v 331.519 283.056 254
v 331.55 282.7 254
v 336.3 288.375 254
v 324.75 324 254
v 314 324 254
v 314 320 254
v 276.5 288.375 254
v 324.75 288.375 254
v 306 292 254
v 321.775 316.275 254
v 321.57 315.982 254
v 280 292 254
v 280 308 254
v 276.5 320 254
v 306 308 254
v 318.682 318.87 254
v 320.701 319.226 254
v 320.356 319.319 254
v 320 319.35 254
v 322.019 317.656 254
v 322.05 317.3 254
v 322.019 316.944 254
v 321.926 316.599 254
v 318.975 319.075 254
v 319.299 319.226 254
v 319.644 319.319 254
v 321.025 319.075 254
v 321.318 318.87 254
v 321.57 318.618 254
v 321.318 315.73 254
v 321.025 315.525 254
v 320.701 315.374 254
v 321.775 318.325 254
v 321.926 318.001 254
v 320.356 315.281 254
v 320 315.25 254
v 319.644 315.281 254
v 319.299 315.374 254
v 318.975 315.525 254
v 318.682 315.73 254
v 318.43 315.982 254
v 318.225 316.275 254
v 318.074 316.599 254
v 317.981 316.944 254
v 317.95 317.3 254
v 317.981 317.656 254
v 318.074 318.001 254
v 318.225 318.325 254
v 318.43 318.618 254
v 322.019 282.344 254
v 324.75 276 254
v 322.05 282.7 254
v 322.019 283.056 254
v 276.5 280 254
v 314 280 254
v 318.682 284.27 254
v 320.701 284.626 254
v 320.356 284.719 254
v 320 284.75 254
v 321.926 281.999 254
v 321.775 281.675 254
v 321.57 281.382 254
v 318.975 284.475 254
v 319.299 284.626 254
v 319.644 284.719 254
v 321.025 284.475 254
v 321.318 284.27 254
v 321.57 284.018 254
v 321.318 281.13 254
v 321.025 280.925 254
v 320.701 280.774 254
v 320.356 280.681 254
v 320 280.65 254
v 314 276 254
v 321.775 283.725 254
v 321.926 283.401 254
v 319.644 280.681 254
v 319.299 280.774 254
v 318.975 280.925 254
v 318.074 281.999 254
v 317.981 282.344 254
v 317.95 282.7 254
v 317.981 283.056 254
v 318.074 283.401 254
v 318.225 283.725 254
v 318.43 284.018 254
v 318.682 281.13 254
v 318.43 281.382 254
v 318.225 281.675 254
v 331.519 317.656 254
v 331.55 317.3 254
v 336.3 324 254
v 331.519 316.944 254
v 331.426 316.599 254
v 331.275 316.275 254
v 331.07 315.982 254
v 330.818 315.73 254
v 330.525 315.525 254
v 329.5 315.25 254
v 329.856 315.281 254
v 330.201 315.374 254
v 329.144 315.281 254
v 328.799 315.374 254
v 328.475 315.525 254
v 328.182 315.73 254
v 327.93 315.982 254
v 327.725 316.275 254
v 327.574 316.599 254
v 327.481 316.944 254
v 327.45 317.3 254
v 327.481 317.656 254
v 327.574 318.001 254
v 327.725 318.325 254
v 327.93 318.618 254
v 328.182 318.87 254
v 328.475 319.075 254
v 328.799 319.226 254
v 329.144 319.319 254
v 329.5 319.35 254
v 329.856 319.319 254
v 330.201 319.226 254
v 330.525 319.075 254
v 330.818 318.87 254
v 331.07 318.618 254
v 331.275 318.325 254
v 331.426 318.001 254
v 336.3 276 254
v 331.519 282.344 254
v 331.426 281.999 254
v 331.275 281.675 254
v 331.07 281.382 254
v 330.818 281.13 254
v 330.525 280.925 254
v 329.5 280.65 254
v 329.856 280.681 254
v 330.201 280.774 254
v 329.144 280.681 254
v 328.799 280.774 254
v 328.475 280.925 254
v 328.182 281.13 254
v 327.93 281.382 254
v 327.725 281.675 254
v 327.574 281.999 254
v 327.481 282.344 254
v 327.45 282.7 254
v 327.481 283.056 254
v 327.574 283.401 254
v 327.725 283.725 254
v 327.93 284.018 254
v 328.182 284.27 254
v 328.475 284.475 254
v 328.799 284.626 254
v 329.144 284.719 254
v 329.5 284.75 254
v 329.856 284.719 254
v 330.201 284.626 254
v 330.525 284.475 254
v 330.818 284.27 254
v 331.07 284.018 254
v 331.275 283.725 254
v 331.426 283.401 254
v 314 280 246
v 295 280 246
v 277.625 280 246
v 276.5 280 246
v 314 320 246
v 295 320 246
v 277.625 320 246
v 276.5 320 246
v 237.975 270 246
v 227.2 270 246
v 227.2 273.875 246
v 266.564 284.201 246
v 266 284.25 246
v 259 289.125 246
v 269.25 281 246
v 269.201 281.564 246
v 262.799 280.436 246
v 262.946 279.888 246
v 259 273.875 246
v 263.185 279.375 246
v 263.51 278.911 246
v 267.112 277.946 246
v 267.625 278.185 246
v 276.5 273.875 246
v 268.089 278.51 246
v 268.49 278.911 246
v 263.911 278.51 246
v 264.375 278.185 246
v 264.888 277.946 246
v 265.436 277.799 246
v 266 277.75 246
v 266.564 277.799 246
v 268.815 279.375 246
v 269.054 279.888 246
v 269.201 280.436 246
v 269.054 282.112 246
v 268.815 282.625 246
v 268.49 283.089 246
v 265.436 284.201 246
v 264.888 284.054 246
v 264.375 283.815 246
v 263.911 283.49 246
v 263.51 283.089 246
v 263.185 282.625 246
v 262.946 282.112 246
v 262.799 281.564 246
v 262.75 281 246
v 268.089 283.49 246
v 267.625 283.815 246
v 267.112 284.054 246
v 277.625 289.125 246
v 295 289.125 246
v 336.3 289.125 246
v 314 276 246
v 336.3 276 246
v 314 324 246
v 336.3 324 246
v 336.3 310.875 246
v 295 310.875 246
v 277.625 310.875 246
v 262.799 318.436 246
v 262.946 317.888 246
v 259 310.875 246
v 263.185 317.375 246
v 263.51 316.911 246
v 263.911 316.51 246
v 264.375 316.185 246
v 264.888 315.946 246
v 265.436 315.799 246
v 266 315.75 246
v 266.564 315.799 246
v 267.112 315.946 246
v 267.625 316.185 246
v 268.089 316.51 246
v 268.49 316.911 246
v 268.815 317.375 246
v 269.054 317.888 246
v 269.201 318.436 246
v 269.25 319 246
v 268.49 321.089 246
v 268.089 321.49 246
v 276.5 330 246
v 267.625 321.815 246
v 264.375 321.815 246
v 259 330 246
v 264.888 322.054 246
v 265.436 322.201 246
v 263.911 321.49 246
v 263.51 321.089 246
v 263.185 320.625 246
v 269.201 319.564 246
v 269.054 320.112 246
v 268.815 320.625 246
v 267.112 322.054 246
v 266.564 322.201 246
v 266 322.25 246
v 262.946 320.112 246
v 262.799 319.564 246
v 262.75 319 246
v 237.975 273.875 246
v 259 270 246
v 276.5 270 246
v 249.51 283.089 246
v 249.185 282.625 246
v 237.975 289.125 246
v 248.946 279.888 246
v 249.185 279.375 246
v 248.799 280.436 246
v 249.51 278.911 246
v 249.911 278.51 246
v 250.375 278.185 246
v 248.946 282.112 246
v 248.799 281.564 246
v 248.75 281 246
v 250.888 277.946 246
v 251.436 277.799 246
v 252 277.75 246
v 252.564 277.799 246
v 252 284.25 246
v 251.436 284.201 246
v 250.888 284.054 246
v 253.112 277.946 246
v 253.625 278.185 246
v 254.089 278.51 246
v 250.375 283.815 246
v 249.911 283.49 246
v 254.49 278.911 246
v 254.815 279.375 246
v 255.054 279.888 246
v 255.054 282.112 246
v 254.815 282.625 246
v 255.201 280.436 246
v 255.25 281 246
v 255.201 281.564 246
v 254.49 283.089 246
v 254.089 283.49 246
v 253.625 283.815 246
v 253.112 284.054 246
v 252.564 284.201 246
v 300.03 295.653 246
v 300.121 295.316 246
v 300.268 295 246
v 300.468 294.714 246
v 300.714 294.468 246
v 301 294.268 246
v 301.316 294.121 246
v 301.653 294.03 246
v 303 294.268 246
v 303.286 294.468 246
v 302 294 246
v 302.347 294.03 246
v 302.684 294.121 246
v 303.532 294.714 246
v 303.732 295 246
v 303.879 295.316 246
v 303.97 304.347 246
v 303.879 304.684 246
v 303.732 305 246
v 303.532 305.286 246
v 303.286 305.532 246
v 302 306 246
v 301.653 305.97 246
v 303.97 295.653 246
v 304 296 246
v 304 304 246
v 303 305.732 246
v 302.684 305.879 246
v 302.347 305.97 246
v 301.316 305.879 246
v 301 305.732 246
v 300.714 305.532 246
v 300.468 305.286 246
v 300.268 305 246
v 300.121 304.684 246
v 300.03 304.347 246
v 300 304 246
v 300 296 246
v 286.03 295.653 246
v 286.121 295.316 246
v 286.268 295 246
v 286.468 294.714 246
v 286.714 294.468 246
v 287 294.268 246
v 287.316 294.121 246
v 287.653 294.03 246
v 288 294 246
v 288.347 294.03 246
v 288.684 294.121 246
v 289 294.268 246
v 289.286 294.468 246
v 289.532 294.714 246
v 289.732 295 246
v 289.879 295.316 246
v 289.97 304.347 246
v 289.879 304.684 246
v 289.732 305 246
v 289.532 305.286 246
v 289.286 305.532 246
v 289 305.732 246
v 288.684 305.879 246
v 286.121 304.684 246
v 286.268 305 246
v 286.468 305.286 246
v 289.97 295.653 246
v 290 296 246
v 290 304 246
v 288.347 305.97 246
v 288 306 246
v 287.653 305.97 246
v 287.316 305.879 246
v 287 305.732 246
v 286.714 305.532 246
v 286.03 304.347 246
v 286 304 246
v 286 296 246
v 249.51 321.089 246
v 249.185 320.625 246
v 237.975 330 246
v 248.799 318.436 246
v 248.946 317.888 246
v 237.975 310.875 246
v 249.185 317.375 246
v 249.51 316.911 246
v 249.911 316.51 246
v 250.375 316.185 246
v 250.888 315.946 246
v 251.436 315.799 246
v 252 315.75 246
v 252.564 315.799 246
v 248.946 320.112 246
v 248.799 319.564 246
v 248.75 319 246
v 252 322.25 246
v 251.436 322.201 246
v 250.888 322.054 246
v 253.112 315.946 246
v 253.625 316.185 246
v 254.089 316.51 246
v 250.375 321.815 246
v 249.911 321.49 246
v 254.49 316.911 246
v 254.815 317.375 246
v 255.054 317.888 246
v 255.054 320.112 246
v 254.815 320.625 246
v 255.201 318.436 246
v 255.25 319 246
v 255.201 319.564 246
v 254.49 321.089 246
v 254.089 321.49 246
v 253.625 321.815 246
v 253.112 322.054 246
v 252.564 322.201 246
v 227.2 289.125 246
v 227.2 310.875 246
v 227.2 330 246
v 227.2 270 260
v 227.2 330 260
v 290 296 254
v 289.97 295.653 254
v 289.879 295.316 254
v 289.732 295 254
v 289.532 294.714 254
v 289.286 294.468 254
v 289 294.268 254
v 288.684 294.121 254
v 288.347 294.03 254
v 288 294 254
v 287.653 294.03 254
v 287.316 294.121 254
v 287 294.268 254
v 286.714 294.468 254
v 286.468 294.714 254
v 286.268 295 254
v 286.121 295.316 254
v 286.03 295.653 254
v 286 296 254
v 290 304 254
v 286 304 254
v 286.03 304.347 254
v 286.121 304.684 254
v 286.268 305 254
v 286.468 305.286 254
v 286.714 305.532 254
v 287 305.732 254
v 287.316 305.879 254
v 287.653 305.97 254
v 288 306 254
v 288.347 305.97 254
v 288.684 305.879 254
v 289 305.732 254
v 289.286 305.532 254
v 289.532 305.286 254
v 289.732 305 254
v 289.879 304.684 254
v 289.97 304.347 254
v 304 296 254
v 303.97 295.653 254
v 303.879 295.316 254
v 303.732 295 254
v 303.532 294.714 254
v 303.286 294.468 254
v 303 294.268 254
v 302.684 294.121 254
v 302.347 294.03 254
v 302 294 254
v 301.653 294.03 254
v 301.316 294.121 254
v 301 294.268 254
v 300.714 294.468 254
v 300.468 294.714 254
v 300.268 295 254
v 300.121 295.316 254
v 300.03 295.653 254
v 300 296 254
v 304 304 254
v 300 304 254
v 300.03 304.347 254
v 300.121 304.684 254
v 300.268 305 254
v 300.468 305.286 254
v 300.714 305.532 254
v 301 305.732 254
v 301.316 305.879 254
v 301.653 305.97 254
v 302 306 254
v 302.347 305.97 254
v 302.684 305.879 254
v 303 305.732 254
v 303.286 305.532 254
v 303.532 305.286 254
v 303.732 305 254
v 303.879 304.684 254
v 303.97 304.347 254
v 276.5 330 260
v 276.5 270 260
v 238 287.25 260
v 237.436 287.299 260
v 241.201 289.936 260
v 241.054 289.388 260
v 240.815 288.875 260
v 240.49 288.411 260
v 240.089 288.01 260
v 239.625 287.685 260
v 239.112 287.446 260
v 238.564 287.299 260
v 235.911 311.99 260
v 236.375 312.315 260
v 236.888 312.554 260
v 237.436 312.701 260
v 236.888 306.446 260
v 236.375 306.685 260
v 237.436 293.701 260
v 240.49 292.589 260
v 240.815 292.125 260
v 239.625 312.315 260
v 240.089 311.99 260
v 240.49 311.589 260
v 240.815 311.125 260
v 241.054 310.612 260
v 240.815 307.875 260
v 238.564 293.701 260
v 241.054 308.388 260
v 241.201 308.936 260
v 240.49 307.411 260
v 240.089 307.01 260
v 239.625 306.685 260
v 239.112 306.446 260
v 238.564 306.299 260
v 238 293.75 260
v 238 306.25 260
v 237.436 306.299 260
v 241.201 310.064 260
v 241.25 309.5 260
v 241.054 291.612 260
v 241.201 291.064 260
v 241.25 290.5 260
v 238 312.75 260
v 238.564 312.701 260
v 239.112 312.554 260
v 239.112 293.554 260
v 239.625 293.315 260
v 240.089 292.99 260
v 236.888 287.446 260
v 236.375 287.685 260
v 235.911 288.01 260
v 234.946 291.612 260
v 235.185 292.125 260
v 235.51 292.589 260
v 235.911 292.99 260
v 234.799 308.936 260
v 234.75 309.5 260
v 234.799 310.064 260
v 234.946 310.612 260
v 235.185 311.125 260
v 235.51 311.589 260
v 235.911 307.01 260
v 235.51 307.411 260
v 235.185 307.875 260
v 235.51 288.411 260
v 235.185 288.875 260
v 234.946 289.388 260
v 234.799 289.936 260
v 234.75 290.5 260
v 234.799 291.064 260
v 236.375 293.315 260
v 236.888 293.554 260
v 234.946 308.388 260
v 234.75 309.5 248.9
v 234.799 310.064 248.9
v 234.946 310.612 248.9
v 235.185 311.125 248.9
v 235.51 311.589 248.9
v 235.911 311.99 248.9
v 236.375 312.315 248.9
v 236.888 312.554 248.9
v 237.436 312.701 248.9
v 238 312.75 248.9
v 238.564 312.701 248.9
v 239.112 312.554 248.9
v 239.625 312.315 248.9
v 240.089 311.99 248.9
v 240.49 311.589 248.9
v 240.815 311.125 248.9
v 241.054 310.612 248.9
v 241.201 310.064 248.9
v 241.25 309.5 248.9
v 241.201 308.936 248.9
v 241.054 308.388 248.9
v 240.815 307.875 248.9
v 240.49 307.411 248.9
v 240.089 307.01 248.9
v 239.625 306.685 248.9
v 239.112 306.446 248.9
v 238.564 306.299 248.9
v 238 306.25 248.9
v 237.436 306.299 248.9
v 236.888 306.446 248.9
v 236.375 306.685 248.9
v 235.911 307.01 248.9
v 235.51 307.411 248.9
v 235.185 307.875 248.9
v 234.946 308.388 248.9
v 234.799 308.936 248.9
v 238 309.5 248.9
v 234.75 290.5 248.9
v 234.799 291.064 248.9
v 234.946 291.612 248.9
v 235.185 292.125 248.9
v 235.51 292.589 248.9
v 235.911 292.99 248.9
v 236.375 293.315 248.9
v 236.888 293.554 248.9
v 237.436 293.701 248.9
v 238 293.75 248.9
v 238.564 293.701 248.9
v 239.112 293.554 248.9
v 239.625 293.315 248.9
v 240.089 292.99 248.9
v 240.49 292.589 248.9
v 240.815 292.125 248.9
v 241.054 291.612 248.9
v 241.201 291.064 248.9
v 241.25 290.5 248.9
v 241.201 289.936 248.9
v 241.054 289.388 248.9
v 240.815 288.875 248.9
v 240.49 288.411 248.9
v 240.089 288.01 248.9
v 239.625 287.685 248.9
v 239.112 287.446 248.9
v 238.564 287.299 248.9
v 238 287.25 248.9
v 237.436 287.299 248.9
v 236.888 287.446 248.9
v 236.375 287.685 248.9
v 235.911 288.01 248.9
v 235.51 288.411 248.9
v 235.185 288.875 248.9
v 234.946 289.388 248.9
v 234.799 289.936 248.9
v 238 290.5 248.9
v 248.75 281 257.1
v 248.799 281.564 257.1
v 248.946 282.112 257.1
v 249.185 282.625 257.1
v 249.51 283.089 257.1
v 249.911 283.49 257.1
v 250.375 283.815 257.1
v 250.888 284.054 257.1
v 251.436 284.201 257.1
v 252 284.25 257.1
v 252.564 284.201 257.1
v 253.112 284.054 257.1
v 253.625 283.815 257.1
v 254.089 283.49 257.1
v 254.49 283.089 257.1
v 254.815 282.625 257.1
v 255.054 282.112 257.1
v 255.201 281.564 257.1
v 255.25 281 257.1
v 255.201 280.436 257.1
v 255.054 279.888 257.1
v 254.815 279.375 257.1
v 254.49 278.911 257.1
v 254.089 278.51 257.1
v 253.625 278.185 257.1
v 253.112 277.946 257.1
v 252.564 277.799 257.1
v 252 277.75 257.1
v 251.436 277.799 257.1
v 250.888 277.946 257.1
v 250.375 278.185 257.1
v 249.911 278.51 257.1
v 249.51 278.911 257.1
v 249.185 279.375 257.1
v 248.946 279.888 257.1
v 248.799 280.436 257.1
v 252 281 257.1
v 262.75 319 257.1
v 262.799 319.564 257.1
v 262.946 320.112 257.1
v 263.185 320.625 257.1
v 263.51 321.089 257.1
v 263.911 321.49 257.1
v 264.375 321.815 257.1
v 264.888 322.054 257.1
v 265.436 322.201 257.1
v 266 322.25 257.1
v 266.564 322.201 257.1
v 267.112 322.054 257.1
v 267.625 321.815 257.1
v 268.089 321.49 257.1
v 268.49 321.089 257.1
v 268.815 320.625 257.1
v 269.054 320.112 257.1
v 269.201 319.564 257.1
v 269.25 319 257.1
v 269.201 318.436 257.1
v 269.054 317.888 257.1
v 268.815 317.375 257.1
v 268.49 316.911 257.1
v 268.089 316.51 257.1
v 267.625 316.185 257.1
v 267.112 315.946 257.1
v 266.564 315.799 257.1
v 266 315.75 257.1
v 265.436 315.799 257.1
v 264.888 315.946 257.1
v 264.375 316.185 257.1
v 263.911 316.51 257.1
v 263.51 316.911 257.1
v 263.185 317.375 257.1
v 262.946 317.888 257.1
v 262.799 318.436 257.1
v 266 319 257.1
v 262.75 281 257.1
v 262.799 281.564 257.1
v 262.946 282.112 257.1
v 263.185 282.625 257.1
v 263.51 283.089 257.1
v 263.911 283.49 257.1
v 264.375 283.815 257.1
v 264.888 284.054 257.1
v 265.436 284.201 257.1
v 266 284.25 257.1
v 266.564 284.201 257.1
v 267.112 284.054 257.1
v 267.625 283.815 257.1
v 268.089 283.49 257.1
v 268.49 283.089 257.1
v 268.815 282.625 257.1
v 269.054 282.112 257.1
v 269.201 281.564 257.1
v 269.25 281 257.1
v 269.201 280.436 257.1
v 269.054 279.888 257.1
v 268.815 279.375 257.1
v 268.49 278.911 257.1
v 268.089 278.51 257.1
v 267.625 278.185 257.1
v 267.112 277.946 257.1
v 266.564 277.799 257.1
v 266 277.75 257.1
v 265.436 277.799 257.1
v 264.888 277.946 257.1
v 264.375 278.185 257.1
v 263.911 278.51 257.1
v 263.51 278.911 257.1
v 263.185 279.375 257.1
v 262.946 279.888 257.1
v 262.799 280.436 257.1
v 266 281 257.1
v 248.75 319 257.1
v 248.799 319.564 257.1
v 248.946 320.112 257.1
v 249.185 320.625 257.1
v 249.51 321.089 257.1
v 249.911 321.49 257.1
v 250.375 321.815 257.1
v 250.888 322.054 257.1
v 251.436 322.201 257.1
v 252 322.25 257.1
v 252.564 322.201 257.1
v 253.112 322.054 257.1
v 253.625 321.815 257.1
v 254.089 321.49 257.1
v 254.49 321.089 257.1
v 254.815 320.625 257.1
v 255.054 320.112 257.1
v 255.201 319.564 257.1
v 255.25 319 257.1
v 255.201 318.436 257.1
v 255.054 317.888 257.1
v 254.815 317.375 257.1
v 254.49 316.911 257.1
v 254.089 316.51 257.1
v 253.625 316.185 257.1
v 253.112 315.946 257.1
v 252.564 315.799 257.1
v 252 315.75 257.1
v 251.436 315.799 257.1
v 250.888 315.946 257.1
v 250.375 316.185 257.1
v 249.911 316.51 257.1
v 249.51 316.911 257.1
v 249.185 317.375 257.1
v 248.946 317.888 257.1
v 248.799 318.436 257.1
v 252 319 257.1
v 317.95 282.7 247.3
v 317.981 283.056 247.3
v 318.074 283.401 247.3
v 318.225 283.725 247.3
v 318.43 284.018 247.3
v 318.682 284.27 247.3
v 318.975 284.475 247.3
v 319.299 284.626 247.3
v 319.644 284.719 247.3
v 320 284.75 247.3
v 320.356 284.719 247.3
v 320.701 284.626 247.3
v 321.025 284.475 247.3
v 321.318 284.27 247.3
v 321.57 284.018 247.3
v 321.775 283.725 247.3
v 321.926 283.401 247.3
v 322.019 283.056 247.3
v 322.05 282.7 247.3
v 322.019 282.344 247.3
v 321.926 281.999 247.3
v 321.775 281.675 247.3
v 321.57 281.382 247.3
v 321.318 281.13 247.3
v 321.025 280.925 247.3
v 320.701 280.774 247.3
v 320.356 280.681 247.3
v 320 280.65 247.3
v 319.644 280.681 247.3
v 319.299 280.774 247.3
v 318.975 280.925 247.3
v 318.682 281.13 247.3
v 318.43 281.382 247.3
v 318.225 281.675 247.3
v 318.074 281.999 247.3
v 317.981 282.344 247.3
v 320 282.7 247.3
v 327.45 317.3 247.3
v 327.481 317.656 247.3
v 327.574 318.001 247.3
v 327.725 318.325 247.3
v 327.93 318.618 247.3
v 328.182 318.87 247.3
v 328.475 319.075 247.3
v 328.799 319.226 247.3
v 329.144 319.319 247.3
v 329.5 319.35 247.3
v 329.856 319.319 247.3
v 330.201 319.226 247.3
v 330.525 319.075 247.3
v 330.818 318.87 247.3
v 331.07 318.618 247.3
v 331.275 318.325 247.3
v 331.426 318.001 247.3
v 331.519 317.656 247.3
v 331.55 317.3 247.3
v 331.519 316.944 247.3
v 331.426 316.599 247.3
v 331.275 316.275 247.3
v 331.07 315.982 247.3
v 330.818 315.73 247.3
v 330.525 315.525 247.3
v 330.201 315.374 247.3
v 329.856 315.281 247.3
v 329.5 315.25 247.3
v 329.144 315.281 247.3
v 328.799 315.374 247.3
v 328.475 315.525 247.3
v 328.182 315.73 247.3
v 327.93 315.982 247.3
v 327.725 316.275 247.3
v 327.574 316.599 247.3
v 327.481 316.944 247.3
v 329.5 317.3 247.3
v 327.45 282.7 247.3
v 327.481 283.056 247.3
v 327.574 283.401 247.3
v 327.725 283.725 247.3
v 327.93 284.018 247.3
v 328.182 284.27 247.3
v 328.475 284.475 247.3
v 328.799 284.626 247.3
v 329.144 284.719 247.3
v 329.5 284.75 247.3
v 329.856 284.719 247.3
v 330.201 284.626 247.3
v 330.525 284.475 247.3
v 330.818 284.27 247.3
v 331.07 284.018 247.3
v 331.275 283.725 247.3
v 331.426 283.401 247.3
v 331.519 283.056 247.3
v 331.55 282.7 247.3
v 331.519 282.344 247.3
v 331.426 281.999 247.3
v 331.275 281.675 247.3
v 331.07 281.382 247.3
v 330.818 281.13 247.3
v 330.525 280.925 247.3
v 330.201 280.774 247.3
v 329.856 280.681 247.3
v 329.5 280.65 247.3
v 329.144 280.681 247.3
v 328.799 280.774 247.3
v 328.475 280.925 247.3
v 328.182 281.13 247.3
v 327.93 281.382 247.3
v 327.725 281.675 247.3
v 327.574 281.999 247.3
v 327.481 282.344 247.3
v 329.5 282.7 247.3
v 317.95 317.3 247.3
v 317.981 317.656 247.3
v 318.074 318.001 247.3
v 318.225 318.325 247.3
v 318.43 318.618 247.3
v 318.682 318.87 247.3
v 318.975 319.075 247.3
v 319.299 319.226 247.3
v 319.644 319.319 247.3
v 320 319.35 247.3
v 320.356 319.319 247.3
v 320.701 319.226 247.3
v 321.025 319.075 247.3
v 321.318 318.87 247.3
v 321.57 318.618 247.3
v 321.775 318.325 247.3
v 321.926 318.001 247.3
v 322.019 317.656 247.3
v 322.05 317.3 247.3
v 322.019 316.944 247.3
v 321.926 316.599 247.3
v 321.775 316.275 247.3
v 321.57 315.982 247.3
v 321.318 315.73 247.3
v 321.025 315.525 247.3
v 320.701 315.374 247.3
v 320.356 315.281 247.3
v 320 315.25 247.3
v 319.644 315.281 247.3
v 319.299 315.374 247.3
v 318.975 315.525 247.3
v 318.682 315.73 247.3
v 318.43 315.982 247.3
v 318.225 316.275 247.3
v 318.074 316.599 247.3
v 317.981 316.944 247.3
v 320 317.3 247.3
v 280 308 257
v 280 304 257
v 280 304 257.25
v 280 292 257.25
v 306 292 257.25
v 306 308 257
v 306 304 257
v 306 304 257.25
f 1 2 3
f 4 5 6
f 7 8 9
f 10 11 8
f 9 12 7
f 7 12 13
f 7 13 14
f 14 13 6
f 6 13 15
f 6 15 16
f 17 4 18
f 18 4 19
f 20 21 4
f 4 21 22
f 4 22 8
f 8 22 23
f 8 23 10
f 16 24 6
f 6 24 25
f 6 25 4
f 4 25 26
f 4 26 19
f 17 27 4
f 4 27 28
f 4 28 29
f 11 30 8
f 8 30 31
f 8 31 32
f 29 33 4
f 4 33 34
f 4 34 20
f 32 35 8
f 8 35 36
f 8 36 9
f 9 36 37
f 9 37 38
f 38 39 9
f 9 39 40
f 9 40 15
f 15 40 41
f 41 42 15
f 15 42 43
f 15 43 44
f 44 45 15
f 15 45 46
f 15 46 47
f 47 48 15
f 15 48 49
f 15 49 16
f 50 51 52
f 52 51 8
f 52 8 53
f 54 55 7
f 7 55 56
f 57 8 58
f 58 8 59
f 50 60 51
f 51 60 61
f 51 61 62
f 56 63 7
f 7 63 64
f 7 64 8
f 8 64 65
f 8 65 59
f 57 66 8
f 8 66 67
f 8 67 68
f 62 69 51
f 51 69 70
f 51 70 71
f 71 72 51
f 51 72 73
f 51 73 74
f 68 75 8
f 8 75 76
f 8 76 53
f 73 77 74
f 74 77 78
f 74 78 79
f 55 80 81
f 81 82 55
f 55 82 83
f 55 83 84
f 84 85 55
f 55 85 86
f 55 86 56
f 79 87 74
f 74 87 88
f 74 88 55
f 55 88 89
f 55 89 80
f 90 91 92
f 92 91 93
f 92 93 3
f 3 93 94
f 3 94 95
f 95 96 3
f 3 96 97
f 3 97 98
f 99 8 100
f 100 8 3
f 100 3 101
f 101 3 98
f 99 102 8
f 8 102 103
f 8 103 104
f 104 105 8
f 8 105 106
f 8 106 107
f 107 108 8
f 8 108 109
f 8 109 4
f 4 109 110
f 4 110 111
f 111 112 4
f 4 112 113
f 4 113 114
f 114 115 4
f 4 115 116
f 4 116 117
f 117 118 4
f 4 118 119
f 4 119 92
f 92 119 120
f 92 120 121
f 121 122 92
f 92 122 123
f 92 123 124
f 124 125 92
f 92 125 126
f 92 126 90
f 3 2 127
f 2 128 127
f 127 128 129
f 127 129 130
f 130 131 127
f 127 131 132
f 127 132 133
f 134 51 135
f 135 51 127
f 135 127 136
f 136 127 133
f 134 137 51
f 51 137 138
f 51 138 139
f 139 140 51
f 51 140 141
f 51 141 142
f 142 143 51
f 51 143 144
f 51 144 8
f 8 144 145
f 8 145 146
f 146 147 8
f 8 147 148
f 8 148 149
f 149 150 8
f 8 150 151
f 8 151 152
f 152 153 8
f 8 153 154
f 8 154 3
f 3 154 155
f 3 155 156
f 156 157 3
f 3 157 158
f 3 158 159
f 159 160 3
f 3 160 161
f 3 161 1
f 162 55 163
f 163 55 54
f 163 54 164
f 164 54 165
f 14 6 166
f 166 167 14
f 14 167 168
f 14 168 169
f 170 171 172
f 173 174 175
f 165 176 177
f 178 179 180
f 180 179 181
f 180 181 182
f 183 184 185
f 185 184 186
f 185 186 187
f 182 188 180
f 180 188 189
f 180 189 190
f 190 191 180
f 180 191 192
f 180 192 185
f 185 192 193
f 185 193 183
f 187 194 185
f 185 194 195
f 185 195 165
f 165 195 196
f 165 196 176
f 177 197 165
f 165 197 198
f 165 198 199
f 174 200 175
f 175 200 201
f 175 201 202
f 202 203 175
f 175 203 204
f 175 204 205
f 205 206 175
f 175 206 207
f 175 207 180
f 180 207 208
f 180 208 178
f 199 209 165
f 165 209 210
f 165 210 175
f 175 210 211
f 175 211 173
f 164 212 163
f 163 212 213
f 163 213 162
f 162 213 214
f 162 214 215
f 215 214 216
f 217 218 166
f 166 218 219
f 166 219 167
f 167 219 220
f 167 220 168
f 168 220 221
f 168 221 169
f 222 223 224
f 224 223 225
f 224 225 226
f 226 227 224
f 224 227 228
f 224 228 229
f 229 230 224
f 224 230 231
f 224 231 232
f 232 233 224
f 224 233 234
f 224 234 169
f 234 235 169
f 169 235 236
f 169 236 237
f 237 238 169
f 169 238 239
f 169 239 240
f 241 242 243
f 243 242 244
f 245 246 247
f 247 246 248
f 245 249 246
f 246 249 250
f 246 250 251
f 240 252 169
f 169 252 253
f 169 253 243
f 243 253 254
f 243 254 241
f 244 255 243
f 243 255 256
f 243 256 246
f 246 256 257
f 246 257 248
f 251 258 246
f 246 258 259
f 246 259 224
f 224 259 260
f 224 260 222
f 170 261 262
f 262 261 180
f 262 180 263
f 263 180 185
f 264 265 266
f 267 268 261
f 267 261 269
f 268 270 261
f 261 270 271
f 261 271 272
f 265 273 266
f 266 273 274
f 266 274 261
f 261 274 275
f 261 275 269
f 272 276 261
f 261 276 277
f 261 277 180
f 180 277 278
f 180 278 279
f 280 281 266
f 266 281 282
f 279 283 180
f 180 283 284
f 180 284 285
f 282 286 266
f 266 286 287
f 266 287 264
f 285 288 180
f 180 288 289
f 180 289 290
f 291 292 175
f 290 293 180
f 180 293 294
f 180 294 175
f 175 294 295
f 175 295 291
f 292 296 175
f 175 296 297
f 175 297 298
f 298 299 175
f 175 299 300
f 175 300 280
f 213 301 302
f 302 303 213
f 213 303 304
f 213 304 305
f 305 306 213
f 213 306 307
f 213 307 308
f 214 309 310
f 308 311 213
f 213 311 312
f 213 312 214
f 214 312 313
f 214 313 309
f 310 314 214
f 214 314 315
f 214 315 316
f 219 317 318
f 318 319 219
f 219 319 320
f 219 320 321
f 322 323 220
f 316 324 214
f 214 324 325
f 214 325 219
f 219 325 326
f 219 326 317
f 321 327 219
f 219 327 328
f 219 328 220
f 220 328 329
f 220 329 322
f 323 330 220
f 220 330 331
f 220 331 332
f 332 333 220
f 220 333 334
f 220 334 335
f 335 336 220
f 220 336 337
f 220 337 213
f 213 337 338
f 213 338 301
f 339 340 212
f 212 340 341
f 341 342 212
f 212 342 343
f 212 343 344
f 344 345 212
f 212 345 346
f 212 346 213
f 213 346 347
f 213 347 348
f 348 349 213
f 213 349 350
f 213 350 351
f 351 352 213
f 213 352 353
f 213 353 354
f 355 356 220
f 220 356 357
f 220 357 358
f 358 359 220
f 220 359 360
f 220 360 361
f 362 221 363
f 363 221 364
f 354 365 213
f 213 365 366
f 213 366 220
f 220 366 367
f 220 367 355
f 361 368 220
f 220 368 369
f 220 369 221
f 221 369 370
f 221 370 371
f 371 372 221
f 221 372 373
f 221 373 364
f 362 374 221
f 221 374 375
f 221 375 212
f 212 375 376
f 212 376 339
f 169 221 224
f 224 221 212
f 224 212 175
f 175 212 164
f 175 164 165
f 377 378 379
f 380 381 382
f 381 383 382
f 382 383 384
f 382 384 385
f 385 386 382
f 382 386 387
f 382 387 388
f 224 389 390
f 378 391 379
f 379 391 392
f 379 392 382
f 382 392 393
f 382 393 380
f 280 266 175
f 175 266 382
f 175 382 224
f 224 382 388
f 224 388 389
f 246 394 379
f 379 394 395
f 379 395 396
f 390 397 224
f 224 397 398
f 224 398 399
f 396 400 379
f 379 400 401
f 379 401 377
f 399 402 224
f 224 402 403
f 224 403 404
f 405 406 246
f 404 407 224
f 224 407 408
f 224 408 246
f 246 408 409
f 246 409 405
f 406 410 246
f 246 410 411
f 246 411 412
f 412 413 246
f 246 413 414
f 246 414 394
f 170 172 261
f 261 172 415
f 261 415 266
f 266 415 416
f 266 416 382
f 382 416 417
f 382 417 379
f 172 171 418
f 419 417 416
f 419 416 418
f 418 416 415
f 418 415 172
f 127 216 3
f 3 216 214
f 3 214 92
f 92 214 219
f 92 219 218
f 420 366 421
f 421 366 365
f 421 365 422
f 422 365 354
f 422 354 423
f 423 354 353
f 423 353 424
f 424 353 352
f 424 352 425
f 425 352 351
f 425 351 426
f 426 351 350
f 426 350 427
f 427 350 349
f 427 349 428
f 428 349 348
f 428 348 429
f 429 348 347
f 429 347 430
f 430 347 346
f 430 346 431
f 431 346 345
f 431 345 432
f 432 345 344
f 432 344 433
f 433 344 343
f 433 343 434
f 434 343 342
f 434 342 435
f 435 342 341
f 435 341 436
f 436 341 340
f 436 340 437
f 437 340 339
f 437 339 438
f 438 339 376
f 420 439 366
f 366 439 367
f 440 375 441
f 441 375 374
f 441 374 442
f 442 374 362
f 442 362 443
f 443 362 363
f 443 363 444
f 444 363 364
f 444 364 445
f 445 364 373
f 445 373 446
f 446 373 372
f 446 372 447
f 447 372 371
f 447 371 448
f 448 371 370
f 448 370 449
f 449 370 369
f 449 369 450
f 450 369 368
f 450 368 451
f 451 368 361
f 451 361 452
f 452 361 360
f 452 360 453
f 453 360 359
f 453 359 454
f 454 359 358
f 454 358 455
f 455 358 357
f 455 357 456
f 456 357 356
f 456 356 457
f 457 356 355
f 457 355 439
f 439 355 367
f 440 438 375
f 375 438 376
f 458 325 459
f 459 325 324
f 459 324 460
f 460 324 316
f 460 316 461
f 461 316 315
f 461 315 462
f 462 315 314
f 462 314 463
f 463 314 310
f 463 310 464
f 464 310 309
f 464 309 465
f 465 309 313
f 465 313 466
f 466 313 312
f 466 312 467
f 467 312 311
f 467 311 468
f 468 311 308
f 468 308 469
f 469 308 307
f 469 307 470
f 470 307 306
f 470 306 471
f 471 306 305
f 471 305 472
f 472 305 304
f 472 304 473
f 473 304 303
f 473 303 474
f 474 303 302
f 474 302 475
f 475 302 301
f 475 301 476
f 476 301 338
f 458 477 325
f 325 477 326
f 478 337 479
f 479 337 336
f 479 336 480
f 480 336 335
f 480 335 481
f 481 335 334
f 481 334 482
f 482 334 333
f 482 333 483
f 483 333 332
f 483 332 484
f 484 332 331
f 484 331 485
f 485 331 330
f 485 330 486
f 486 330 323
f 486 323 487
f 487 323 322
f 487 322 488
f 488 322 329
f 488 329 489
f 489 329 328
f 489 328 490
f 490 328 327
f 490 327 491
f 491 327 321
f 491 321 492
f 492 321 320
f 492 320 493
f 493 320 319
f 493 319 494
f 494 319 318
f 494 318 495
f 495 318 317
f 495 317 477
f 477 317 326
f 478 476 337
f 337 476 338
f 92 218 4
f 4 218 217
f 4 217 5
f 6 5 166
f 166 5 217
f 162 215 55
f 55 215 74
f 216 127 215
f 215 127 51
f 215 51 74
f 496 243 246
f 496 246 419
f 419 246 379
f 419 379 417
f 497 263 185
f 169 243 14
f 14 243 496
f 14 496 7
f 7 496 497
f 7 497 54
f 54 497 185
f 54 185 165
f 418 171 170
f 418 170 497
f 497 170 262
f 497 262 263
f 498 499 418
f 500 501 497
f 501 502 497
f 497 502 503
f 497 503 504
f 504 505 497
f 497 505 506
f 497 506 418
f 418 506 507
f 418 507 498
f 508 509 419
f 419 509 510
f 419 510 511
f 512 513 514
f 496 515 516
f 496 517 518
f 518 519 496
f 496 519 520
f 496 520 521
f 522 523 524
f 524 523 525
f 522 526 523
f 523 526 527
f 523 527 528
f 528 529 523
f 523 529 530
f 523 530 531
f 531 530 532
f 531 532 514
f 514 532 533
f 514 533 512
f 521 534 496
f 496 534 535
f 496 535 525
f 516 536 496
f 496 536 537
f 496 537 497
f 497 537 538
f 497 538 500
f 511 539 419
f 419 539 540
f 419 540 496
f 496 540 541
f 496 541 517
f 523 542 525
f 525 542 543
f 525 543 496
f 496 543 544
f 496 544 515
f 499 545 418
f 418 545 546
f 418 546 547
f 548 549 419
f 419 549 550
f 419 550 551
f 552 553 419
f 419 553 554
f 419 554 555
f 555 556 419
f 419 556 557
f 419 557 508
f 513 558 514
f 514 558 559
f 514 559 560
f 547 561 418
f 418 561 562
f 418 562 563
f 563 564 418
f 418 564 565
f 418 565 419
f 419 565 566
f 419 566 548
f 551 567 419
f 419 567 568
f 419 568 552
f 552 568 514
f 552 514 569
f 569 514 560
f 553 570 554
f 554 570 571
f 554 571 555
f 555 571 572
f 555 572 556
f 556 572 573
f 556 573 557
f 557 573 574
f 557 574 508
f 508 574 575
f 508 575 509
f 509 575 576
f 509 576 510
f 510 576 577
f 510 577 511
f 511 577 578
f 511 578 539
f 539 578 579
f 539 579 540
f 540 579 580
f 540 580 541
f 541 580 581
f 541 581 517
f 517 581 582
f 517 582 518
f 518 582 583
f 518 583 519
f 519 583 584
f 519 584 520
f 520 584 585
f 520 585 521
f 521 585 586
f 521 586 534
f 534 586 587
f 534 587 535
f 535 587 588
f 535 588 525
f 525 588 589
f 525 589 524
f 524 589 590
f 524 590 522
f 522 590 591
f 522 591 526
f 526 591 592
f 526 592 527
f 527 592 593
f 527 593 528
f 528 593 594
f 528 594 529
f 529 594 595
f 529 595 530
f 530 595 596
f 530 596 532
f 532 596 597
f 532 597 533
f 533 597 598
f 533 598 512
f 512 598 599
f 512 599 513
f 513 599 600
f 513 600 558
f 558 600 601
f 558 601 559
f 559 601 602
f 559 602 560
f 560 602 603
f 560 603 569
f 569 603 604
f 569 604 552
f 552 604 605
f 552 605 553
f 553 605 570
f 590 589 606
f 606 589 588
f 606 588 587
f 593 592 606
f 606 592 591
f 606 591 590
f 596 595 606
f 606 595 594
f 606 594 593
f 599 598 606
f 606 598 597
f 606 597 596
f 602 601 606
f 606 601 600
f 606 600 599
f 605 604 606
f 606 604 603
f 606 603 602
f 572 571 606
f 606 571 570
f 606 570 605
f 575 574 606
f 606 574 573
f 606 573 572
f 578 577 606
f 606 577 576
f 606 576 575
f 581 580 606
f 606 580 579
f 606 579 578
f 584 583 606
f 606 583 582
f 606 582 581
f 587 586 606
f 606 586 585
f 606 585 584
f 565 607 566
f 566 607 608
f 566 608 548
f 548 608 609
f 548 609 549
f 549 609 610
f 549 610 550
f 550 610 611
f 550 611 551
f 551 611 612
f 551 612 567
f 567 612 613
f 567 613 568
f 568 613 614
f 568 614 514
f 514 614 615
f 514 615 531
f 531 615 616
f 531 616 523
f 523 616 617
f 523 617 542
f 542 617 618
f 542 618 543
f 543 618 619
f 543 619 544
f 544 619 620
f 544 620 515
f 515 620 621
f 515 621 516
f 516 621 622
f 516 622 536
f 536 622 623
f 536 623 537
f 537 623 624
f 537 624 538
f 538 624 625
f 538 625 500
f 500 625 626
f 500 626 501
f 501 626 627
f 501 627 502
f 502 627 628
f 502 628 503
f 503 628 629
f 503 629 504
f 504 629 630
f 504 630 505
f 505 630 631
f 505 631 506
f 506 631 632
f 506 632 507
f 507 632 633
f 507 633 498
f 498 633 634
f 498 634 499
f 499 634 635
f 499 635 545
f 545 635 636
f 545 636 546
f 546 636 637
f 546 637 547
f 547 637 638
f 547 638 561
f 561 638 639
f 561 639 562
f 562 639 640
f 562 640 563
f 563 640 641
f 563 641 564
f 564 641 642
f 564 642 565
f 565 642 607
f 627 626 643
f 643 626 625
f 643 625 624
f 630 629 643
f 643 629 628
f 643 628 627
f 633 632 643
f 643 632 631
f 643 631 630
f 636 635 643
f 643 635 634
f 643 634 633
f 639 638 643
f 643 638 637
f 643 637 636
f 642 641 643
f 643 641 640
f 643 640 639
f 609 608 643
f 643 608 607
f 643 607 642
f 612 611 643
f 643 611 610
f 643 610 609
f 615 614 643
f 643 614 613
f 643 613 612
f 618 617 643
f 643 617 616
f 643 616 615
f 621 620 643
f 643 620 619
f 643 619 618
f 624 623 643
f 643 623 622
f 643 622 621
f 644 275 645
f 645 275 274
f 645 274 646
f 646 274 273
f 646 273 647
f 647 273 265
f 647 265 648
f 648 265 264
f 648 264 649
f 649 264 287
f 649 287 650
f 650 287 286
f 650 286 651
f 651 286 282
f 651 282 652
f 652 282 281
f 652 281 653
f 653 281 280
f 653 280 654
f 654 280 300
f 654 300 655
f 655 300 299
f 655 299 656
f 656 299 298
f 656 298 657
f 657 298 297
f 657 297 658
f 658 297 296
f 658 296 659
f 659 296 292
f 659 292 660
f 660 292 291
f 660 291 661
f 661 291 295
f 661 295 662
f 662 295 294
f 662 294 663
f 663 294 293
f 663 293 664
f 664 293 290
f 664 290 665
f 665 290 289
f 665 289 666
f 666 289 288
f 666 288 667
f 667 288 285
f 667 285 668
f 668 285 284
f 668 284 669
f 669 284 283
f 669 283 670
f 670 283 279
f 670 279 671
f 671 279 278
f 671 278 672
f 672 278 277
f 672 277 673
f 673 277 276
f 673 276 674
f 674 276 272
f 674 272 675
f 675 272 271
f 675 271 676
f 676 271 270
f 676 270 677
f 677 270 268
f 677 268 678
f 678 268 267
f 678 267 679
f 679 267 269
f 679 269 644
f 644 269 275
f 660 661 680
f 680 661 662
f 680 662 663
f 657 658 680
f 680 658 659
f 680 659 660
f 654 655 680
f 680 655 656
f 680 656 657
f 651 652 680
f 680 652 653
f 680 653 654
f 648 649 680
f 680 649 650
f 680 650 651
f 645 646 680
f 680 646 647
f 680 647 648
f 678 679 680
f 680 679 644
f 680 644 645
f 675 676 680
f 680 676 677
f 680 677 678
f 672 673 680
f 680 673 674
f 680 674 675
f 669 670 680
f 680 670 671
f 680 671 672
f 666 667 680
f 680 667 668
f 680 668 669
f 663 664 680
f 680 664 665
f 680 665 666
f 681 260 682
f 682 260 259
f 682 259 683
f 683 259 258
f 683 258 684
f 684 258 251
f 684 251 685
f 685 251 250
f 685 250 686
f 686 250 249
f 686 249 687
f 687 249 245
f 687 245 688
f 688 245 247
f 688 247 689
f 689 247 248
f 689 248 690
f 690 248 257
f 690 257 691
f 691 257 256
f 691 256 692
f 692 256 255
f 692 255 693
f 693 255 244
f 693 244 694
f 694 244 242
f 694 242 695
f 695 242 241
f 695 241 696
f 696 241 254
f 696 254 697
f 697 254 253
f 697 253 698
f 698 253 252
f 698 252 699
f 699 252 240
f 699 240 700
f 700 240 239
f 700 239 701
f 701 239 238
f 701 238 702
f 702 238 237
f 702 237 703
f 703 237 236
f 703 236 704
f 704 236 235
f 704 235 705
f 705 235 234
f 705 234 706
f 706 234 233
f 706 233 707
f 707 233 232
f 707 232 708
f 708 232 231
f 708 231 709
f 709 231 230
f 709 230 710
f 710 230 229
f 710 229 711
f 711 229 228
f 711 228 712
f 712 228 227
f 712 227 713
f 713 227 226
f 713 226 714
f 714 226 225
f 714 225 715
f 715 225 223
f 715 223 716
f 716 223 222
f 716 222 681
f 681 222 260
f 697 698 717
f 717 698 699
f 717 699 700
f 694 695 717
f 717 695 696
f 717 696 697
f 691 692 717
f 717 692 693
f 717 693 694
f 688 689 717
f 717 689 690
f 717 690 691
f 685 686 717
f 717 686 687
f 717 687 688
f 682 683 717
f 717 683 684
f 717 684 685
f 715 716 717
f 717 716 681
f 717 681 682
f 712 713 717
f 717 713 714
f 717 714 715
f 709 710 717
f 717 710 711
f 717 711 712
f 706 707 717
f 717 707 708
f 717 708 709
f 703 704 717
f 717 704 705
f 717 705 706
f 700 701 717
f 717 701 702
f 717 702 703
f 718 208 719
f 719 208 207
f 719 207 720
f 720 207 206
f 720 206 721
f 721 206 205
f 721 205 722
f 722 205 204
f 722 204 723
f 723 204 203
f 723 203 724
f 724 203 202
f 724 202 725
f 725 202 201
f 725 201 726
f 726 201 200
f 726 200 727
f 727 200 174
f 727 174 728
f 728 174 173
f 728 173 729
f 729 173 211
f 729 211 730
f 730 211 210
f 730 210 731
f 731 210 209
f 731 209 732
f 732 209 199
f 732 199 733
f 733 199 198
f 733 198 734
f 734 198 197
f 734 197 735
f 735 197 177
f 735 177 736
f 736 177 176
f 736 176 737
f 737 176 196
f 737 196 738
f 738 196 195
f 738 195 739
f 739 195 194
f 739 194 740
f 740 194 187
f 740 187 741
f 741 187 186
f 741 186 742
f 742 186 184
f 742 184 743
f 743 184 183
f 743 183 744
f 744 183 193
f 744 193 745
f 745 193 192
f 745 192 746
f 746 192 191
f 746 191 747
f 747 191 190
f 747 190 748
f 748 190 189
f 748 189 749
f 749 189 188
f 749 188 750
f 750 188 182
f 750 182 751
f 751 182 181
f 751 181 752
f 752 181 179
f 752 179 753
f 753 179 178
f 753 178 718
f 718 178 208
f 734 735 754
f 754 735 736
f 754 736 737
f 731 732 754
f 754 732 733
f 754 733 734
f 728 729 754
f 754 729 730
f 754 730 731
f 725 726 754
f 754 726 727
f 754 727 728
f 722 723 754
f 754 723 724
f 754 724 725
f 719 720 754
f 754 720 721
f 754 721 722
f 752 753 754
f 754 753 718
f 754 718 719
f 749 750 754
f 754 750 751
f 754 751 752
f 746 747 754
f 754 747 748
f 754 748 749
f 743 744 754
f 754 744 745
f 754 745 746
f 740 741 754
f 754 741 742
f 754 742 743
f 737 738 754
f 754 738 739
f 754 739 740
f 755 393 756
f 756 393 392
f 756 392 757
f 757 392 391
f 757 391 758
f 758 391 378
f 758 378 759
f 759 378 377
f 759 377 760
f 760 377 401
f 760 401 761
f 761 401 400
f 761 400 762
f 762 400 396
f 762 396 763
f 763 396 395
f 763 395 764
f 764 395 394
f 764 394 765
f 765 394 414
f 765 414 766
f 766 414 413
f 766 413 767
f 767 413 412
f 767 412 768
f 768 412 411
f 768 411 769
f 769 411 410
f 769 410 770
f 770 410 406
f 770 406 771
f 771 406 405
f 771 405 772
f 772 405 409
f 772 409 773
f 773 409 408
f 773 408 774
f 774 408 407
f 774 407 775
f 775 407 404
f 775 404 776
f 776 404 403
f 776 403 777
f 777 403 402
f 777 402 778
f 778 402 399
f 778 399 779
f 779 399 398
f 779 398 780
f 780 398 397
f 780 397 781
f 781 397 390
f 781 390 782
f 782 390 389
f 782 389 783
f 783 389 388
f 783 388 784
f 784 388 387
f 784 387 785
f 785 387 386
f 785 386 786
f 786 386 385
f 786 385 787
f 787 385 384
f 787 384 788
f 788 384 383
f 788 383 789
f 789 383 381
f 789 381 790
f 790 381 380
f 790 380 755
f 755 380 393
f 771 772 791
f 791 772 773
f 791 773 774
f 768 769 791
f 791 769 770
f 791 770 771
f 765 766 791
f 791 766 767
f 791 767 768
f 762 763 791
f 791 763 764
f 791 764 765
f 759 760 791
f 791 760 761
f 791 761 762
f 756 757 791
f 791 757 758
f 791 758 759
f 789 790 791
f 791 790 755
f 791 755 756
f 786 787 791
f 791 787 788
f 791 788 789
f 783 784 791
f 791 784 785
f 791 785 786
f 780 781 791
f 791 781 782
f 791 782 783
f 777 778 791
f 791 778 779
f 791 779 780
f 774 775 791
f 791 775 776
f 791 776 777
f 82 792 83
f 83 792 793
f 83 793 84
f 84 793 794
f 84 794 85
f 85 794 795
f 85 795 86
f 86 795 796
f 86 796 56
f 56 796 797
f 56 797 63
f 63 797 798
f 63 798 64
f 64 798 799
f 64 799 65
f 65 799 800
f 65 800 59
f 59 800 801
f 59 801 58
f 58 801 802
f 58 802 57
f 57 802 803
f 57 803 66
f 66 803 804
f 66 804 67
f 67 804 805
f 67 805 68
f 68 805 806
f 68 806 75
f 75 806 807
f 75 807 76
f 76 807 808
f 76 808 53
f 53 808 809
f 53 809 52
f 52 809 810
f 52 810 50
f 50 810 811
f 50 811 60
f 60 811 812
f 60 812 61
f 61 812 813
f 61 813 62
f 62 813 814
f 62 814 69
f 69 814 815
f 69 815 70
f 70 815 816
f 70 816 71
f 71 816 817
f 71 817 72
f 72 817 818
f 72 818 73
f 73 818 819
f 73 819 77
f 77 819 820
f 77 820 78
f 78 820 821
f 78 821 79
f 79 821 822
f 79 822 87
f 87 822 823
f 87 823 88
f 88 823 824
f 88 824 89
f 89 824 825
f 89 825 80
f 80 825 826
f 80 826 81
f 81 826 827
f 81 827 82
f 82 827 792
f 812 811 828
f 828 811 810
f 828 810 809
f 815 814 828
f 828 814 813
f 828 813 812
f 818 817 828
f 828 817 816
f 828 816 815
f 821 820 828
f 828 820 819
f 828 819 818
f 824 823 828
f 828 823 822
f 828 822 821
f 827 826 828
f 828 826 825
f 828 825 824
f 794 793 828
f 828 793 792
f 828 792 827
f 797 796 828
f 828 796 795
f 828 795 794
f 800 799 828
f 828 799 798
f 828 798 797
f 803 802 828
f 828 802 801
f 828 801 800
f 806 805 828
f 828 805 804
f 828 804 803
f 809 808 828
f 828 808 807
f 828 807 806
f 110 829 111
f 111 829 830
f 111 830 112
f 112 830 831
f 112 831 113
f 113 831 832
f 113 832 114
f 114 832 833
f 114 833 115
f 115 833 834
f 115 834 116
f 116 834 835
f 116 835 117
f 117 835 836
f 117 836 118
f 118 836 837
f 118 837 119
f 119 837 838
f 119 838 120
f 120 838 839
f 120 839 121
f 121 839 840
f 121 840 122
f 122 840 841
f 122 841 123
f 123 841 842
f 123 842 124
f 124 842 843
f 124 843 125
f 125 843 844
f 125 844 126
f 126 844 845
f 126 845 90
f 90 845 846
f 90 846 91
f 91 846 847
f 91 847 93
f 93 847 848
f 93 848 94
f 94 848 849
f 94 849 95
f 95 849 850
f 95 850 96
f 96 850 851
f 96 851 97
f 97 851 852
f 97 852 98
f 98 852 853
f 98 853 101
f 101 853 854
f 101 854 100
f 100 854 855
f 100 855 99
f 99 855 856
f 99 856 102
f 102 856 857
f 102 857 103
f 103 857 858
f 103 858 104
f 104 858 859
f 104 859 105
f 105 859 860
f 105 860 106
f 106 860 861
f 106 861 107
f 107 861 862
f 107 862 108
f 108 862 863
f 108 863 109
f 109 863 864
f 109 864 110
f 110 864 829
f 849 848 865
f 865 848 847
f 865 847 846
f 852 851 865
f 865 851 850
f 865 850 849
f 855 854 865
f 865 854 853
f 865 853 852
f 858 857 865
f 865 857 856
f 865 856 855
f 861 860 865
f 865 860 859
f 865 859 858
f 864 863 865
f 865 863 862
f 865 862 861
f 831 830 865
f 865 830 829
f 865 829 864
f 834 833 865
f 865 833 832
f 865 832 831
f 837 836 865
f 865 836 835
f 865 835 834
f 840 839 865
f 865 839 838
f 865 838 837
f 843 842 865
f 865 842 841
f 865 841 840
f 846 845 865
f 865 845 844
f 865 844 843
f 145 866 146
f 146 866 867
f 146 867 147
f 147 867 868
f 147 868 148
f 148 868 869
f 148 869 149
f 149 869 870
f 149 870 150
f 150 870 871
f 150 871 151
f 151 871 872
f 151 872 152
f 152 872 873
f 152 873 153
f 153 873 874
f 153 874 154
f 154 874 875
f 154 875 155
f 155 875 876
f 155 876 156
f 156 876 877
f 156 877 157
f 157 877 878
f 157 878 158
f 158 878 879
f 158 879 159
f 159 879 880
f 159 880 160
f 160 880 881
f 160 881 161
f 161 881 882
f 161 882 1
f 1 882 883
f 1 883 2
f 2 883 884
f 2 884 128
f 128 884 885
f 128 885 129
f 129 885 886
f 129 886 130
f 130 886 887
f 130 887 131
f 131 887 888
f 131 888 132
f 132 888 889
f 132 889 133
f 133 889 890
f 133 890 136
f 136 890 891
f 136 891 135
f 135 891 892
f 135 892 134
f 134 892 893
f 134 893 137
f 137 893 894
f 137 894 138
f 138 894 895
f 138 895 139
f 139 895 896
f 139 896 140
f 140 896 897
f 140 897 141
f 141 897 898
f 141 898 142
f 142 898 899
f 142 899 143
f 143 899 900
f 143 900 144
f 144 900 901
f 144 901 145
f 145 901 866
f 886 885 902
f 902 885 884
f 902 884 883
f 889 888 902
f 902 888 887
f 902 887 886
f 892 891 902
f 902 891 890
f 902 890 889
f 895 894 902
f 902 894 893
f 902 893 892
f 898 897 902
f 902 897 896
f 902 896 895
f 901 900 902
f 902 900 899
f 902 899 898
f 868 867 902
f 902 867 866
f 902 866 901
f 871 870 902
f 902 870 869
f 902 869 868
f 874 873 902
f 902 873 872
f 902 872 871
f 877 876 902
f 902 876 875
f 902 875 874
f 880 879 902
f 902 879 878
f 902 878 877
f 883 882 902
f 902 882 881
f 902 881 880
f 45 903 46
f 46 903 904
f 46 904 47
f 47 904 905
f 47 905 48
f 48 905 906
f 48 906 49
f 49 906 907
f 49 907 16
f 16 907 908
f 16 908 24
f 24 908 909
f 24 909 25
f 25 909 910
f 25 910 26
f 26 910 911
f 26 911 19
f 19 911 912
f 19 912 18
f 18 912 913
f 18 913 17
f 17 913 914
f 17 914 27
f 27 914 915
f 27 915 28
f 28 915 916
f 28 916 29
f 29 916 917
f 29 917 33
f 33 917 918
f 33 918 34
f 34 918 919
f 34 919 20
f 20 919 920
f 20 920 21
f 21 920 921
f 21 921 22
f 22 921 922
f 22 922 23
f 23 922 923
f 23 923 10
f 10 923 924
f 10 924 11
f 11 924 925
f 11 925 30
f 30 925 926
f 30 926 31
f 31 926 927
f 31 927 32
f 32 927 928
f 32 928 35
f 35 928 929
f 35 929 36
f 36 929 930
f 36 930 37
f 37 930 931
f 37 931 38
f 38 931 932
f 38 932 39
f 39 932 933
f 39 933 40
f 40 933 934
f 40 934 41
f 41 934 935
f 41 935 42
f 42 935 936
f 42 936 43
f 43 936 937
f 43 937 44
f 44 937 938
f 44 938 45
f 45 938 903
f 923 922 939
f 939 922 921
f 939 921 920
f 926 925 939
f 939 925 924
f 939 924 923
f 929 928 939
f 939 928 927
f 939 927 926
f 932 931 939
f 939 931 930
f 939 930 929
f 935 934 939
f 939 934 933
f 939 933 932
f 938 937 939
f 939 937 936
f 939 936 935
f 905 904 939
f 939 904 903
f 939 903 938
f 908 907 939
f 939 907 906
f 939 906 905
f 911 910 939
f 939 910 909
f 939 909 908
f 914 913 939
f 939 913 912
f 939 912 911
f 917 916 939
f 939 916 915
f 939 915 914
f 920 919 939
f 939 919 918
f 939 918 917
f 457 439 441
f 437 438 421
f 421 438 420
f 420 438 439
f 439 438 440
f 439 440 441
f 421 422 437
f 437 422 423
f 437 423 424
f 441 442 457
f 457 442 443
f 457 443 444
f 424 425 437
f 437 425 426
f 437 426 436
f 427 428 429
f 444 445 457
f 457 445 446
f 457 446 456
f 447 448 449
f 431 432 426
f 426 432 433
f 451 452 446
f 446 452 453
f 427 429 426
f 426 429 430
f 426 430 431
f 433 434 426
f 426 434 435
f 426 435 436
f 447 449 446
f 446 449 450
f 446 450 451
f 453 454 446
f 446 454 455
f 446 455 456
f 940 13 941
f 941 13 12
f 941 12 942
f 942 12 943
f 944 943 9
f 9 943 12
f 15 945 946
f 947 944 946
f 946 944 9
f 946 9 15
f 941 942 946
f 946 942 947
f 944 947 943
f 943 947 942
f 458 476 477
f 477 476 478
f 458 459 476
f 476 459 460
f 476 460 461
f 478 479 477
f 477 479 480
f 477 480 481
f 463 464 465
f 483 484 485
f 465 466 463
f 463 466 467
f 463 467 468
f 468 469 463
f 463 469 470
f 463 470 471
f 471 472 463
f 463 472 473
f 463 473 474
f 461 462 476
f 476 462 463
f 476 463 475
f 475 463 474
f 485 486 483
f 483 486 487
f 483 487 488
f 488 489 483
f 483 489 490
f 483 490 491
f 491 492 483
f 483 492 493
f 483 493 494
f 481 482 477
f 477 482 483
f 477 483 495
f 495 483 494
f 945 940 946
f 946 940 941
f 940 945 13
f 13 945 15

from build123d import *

# Parameters (mm, degrees)
SKETCH1_W           = 109.1
SKETCH1_H           = 40
BOSS_EXTRUDE1_DEPTH = 8
SKETCH2_W           = 22.3
SKETCH2_H           = 48
BOSS_EXTRUDE2_DEPTH = 8
SKETCH3_W           = 49.3
SKETCH3_H           = 60
BOSS_EXTRUDE3_DEPTH = 8
SKETCH4_W           = 49.3
SKETCH4_H           = 60
BOSS_EXTRUDE4_DEPTH = 6
SKETCH5_R           = 3.25
CUT_EXTRUDE1_DEPTH  = 11.1
SKETCH6_R           = 3.25
CUT_EXTRUDE2_DEPTH  = 11.1
SKETCH7_R           = 2.05
CUT_EXTRUDE3_DEPTH  = 6.7
SKETCH8_W           = 26
SKETCH8_H           = 12
BOSS_EXTRUDE5_DEPTH = 3.25
SKETCH9_W           = 26
SKETCH9_H           = 12
BOSS_EXTRUDE6_DEPTH = 3


with BuildPart() as part:
    # Sketch1 → Boss-Extrude1 (new body)
    with BuildSketch(Plane.XY.offset(246)):
        with Locations((281.75, 300)):
            Rectangle(SKETCH1_W, SKETCH1_H)
        with BuildLine():
            Line((290, 296), (290, 304))
            ThreePointArc((290, 304), (288, 306), (286, 304))
            Line((286, 304), (286, 296))
            ThreePointArc((286, 296), (288, 294), (290, 296))
        make_face(mode=Mode.SUBTRACT)
        with BuildLine():
            Line((304, 296), (304, 304))
            ThreePointArc((304, 304), (302, 306), (300, 304))
            Line((300, 304), (300, 296))
            ThreePointArc((300, 296), (302, 294), (304, 296))
        make_face(mode=Mode.SUBTRACT)
    extrude(amount=BOSS_EXTRUDE1_DEPTH)

    # Sketch2 → Boss-Extrude2 (add)
    with BuildSketch(Plane.XY.offset(246)):
        with Locations((325.15, 300)):
            Rectangle(SKETCH2_W, SKETCH2_H)
    extrude(amount=BOSS_EXTRUDE2_DEPTH)

    # Sketch3 → Boss-Extrude3 (add)
    with BuildSketch(Plane.XY.offset(246)):
        with Locations((251.85, 300)):
            Rectangle(SKETCH3_W, SKETCH3_H)
    extrude(amount=BOSS_EXTRUDE3_DEPTH)

    # Sketch4 → Boss-Extrude4 (add)
    with BuildSketch(Plane.XY.offset(254)):
        with Locations((251.85, 300)):
            Rectangle(SKETCH4_W, SKETCH4_H)
    extrude(amount=BOSS_EXTRUDE4_DEPTH)

    # Sketch5 → Cut-Extrude1 (cut)
    with BuildSketch(Plane.XY.offset(248.9)):
        with Locations((238, 290.5)):
            Circle(SKETCH5_R)
        with Locations((238, 309.5)):
            Circle(SKETCH5_R)
    extrude(amount=CUT_EXTRUDE1_DEPTH, mode=Mode.SUBTRACT)

    # Sketch6 → Cut-Extrude2 (cut)
    with BuildSketch(Plane.XY.offset(246)):
        with Locations((252, 281)):
            Circle(SKETCH6_R)
        with Locations((252, 319)):
            Circle(SKETCH6_R)
        with Locations((266, 281)):
            Circle(SKETCH6_R)
        with Locations((266, 319)):
            Circle(SKETCH6_R)
    extrude(amount=CUT_EXTRUDE2_DEPTH, mode=Mode.SUBTRACT)

    # Sketch7 → Cut-Extrude3 (cut)
    with BuildSketch(Plane.XY.offset(247.3)):
        with Locations((320, 282.7)):
            Circle(SKETCH7_R)
        with Locations((320, 317.3)):
            Circle(SKETCH7_R)
        with Locations((329.5, 282.7)):
            Circle(SKETCH7_R)
        with Locations((329.5, 317.3)):
            Circle(SKETCH7_R)
    extrude(amount=CUT_EXTRUDE3_DEPTH, mode=Mode.SUBTRACT)

    # Sketch8 → Boss-Extrude5 (add)
    with BuildSketch(Plane.XY.offset(254)):
        with Locations((293, 298)):
            Rectangle(SKETCH8_W, SKETCH8_H)
    extrude(amount=BOSS_EXTRUDE5_DEPTH)

    # Sketch9 → Boss-Extrude6 (add)
    with BuildSketch(Plane.XY.offset(254)):
        with Locations((293, 302)):
            Rectangle(SKETCH9_W, SKETCH9_H)
    extrude(amount=BOSS_EXTRUDE6_DEPTH)


solid = part.part
